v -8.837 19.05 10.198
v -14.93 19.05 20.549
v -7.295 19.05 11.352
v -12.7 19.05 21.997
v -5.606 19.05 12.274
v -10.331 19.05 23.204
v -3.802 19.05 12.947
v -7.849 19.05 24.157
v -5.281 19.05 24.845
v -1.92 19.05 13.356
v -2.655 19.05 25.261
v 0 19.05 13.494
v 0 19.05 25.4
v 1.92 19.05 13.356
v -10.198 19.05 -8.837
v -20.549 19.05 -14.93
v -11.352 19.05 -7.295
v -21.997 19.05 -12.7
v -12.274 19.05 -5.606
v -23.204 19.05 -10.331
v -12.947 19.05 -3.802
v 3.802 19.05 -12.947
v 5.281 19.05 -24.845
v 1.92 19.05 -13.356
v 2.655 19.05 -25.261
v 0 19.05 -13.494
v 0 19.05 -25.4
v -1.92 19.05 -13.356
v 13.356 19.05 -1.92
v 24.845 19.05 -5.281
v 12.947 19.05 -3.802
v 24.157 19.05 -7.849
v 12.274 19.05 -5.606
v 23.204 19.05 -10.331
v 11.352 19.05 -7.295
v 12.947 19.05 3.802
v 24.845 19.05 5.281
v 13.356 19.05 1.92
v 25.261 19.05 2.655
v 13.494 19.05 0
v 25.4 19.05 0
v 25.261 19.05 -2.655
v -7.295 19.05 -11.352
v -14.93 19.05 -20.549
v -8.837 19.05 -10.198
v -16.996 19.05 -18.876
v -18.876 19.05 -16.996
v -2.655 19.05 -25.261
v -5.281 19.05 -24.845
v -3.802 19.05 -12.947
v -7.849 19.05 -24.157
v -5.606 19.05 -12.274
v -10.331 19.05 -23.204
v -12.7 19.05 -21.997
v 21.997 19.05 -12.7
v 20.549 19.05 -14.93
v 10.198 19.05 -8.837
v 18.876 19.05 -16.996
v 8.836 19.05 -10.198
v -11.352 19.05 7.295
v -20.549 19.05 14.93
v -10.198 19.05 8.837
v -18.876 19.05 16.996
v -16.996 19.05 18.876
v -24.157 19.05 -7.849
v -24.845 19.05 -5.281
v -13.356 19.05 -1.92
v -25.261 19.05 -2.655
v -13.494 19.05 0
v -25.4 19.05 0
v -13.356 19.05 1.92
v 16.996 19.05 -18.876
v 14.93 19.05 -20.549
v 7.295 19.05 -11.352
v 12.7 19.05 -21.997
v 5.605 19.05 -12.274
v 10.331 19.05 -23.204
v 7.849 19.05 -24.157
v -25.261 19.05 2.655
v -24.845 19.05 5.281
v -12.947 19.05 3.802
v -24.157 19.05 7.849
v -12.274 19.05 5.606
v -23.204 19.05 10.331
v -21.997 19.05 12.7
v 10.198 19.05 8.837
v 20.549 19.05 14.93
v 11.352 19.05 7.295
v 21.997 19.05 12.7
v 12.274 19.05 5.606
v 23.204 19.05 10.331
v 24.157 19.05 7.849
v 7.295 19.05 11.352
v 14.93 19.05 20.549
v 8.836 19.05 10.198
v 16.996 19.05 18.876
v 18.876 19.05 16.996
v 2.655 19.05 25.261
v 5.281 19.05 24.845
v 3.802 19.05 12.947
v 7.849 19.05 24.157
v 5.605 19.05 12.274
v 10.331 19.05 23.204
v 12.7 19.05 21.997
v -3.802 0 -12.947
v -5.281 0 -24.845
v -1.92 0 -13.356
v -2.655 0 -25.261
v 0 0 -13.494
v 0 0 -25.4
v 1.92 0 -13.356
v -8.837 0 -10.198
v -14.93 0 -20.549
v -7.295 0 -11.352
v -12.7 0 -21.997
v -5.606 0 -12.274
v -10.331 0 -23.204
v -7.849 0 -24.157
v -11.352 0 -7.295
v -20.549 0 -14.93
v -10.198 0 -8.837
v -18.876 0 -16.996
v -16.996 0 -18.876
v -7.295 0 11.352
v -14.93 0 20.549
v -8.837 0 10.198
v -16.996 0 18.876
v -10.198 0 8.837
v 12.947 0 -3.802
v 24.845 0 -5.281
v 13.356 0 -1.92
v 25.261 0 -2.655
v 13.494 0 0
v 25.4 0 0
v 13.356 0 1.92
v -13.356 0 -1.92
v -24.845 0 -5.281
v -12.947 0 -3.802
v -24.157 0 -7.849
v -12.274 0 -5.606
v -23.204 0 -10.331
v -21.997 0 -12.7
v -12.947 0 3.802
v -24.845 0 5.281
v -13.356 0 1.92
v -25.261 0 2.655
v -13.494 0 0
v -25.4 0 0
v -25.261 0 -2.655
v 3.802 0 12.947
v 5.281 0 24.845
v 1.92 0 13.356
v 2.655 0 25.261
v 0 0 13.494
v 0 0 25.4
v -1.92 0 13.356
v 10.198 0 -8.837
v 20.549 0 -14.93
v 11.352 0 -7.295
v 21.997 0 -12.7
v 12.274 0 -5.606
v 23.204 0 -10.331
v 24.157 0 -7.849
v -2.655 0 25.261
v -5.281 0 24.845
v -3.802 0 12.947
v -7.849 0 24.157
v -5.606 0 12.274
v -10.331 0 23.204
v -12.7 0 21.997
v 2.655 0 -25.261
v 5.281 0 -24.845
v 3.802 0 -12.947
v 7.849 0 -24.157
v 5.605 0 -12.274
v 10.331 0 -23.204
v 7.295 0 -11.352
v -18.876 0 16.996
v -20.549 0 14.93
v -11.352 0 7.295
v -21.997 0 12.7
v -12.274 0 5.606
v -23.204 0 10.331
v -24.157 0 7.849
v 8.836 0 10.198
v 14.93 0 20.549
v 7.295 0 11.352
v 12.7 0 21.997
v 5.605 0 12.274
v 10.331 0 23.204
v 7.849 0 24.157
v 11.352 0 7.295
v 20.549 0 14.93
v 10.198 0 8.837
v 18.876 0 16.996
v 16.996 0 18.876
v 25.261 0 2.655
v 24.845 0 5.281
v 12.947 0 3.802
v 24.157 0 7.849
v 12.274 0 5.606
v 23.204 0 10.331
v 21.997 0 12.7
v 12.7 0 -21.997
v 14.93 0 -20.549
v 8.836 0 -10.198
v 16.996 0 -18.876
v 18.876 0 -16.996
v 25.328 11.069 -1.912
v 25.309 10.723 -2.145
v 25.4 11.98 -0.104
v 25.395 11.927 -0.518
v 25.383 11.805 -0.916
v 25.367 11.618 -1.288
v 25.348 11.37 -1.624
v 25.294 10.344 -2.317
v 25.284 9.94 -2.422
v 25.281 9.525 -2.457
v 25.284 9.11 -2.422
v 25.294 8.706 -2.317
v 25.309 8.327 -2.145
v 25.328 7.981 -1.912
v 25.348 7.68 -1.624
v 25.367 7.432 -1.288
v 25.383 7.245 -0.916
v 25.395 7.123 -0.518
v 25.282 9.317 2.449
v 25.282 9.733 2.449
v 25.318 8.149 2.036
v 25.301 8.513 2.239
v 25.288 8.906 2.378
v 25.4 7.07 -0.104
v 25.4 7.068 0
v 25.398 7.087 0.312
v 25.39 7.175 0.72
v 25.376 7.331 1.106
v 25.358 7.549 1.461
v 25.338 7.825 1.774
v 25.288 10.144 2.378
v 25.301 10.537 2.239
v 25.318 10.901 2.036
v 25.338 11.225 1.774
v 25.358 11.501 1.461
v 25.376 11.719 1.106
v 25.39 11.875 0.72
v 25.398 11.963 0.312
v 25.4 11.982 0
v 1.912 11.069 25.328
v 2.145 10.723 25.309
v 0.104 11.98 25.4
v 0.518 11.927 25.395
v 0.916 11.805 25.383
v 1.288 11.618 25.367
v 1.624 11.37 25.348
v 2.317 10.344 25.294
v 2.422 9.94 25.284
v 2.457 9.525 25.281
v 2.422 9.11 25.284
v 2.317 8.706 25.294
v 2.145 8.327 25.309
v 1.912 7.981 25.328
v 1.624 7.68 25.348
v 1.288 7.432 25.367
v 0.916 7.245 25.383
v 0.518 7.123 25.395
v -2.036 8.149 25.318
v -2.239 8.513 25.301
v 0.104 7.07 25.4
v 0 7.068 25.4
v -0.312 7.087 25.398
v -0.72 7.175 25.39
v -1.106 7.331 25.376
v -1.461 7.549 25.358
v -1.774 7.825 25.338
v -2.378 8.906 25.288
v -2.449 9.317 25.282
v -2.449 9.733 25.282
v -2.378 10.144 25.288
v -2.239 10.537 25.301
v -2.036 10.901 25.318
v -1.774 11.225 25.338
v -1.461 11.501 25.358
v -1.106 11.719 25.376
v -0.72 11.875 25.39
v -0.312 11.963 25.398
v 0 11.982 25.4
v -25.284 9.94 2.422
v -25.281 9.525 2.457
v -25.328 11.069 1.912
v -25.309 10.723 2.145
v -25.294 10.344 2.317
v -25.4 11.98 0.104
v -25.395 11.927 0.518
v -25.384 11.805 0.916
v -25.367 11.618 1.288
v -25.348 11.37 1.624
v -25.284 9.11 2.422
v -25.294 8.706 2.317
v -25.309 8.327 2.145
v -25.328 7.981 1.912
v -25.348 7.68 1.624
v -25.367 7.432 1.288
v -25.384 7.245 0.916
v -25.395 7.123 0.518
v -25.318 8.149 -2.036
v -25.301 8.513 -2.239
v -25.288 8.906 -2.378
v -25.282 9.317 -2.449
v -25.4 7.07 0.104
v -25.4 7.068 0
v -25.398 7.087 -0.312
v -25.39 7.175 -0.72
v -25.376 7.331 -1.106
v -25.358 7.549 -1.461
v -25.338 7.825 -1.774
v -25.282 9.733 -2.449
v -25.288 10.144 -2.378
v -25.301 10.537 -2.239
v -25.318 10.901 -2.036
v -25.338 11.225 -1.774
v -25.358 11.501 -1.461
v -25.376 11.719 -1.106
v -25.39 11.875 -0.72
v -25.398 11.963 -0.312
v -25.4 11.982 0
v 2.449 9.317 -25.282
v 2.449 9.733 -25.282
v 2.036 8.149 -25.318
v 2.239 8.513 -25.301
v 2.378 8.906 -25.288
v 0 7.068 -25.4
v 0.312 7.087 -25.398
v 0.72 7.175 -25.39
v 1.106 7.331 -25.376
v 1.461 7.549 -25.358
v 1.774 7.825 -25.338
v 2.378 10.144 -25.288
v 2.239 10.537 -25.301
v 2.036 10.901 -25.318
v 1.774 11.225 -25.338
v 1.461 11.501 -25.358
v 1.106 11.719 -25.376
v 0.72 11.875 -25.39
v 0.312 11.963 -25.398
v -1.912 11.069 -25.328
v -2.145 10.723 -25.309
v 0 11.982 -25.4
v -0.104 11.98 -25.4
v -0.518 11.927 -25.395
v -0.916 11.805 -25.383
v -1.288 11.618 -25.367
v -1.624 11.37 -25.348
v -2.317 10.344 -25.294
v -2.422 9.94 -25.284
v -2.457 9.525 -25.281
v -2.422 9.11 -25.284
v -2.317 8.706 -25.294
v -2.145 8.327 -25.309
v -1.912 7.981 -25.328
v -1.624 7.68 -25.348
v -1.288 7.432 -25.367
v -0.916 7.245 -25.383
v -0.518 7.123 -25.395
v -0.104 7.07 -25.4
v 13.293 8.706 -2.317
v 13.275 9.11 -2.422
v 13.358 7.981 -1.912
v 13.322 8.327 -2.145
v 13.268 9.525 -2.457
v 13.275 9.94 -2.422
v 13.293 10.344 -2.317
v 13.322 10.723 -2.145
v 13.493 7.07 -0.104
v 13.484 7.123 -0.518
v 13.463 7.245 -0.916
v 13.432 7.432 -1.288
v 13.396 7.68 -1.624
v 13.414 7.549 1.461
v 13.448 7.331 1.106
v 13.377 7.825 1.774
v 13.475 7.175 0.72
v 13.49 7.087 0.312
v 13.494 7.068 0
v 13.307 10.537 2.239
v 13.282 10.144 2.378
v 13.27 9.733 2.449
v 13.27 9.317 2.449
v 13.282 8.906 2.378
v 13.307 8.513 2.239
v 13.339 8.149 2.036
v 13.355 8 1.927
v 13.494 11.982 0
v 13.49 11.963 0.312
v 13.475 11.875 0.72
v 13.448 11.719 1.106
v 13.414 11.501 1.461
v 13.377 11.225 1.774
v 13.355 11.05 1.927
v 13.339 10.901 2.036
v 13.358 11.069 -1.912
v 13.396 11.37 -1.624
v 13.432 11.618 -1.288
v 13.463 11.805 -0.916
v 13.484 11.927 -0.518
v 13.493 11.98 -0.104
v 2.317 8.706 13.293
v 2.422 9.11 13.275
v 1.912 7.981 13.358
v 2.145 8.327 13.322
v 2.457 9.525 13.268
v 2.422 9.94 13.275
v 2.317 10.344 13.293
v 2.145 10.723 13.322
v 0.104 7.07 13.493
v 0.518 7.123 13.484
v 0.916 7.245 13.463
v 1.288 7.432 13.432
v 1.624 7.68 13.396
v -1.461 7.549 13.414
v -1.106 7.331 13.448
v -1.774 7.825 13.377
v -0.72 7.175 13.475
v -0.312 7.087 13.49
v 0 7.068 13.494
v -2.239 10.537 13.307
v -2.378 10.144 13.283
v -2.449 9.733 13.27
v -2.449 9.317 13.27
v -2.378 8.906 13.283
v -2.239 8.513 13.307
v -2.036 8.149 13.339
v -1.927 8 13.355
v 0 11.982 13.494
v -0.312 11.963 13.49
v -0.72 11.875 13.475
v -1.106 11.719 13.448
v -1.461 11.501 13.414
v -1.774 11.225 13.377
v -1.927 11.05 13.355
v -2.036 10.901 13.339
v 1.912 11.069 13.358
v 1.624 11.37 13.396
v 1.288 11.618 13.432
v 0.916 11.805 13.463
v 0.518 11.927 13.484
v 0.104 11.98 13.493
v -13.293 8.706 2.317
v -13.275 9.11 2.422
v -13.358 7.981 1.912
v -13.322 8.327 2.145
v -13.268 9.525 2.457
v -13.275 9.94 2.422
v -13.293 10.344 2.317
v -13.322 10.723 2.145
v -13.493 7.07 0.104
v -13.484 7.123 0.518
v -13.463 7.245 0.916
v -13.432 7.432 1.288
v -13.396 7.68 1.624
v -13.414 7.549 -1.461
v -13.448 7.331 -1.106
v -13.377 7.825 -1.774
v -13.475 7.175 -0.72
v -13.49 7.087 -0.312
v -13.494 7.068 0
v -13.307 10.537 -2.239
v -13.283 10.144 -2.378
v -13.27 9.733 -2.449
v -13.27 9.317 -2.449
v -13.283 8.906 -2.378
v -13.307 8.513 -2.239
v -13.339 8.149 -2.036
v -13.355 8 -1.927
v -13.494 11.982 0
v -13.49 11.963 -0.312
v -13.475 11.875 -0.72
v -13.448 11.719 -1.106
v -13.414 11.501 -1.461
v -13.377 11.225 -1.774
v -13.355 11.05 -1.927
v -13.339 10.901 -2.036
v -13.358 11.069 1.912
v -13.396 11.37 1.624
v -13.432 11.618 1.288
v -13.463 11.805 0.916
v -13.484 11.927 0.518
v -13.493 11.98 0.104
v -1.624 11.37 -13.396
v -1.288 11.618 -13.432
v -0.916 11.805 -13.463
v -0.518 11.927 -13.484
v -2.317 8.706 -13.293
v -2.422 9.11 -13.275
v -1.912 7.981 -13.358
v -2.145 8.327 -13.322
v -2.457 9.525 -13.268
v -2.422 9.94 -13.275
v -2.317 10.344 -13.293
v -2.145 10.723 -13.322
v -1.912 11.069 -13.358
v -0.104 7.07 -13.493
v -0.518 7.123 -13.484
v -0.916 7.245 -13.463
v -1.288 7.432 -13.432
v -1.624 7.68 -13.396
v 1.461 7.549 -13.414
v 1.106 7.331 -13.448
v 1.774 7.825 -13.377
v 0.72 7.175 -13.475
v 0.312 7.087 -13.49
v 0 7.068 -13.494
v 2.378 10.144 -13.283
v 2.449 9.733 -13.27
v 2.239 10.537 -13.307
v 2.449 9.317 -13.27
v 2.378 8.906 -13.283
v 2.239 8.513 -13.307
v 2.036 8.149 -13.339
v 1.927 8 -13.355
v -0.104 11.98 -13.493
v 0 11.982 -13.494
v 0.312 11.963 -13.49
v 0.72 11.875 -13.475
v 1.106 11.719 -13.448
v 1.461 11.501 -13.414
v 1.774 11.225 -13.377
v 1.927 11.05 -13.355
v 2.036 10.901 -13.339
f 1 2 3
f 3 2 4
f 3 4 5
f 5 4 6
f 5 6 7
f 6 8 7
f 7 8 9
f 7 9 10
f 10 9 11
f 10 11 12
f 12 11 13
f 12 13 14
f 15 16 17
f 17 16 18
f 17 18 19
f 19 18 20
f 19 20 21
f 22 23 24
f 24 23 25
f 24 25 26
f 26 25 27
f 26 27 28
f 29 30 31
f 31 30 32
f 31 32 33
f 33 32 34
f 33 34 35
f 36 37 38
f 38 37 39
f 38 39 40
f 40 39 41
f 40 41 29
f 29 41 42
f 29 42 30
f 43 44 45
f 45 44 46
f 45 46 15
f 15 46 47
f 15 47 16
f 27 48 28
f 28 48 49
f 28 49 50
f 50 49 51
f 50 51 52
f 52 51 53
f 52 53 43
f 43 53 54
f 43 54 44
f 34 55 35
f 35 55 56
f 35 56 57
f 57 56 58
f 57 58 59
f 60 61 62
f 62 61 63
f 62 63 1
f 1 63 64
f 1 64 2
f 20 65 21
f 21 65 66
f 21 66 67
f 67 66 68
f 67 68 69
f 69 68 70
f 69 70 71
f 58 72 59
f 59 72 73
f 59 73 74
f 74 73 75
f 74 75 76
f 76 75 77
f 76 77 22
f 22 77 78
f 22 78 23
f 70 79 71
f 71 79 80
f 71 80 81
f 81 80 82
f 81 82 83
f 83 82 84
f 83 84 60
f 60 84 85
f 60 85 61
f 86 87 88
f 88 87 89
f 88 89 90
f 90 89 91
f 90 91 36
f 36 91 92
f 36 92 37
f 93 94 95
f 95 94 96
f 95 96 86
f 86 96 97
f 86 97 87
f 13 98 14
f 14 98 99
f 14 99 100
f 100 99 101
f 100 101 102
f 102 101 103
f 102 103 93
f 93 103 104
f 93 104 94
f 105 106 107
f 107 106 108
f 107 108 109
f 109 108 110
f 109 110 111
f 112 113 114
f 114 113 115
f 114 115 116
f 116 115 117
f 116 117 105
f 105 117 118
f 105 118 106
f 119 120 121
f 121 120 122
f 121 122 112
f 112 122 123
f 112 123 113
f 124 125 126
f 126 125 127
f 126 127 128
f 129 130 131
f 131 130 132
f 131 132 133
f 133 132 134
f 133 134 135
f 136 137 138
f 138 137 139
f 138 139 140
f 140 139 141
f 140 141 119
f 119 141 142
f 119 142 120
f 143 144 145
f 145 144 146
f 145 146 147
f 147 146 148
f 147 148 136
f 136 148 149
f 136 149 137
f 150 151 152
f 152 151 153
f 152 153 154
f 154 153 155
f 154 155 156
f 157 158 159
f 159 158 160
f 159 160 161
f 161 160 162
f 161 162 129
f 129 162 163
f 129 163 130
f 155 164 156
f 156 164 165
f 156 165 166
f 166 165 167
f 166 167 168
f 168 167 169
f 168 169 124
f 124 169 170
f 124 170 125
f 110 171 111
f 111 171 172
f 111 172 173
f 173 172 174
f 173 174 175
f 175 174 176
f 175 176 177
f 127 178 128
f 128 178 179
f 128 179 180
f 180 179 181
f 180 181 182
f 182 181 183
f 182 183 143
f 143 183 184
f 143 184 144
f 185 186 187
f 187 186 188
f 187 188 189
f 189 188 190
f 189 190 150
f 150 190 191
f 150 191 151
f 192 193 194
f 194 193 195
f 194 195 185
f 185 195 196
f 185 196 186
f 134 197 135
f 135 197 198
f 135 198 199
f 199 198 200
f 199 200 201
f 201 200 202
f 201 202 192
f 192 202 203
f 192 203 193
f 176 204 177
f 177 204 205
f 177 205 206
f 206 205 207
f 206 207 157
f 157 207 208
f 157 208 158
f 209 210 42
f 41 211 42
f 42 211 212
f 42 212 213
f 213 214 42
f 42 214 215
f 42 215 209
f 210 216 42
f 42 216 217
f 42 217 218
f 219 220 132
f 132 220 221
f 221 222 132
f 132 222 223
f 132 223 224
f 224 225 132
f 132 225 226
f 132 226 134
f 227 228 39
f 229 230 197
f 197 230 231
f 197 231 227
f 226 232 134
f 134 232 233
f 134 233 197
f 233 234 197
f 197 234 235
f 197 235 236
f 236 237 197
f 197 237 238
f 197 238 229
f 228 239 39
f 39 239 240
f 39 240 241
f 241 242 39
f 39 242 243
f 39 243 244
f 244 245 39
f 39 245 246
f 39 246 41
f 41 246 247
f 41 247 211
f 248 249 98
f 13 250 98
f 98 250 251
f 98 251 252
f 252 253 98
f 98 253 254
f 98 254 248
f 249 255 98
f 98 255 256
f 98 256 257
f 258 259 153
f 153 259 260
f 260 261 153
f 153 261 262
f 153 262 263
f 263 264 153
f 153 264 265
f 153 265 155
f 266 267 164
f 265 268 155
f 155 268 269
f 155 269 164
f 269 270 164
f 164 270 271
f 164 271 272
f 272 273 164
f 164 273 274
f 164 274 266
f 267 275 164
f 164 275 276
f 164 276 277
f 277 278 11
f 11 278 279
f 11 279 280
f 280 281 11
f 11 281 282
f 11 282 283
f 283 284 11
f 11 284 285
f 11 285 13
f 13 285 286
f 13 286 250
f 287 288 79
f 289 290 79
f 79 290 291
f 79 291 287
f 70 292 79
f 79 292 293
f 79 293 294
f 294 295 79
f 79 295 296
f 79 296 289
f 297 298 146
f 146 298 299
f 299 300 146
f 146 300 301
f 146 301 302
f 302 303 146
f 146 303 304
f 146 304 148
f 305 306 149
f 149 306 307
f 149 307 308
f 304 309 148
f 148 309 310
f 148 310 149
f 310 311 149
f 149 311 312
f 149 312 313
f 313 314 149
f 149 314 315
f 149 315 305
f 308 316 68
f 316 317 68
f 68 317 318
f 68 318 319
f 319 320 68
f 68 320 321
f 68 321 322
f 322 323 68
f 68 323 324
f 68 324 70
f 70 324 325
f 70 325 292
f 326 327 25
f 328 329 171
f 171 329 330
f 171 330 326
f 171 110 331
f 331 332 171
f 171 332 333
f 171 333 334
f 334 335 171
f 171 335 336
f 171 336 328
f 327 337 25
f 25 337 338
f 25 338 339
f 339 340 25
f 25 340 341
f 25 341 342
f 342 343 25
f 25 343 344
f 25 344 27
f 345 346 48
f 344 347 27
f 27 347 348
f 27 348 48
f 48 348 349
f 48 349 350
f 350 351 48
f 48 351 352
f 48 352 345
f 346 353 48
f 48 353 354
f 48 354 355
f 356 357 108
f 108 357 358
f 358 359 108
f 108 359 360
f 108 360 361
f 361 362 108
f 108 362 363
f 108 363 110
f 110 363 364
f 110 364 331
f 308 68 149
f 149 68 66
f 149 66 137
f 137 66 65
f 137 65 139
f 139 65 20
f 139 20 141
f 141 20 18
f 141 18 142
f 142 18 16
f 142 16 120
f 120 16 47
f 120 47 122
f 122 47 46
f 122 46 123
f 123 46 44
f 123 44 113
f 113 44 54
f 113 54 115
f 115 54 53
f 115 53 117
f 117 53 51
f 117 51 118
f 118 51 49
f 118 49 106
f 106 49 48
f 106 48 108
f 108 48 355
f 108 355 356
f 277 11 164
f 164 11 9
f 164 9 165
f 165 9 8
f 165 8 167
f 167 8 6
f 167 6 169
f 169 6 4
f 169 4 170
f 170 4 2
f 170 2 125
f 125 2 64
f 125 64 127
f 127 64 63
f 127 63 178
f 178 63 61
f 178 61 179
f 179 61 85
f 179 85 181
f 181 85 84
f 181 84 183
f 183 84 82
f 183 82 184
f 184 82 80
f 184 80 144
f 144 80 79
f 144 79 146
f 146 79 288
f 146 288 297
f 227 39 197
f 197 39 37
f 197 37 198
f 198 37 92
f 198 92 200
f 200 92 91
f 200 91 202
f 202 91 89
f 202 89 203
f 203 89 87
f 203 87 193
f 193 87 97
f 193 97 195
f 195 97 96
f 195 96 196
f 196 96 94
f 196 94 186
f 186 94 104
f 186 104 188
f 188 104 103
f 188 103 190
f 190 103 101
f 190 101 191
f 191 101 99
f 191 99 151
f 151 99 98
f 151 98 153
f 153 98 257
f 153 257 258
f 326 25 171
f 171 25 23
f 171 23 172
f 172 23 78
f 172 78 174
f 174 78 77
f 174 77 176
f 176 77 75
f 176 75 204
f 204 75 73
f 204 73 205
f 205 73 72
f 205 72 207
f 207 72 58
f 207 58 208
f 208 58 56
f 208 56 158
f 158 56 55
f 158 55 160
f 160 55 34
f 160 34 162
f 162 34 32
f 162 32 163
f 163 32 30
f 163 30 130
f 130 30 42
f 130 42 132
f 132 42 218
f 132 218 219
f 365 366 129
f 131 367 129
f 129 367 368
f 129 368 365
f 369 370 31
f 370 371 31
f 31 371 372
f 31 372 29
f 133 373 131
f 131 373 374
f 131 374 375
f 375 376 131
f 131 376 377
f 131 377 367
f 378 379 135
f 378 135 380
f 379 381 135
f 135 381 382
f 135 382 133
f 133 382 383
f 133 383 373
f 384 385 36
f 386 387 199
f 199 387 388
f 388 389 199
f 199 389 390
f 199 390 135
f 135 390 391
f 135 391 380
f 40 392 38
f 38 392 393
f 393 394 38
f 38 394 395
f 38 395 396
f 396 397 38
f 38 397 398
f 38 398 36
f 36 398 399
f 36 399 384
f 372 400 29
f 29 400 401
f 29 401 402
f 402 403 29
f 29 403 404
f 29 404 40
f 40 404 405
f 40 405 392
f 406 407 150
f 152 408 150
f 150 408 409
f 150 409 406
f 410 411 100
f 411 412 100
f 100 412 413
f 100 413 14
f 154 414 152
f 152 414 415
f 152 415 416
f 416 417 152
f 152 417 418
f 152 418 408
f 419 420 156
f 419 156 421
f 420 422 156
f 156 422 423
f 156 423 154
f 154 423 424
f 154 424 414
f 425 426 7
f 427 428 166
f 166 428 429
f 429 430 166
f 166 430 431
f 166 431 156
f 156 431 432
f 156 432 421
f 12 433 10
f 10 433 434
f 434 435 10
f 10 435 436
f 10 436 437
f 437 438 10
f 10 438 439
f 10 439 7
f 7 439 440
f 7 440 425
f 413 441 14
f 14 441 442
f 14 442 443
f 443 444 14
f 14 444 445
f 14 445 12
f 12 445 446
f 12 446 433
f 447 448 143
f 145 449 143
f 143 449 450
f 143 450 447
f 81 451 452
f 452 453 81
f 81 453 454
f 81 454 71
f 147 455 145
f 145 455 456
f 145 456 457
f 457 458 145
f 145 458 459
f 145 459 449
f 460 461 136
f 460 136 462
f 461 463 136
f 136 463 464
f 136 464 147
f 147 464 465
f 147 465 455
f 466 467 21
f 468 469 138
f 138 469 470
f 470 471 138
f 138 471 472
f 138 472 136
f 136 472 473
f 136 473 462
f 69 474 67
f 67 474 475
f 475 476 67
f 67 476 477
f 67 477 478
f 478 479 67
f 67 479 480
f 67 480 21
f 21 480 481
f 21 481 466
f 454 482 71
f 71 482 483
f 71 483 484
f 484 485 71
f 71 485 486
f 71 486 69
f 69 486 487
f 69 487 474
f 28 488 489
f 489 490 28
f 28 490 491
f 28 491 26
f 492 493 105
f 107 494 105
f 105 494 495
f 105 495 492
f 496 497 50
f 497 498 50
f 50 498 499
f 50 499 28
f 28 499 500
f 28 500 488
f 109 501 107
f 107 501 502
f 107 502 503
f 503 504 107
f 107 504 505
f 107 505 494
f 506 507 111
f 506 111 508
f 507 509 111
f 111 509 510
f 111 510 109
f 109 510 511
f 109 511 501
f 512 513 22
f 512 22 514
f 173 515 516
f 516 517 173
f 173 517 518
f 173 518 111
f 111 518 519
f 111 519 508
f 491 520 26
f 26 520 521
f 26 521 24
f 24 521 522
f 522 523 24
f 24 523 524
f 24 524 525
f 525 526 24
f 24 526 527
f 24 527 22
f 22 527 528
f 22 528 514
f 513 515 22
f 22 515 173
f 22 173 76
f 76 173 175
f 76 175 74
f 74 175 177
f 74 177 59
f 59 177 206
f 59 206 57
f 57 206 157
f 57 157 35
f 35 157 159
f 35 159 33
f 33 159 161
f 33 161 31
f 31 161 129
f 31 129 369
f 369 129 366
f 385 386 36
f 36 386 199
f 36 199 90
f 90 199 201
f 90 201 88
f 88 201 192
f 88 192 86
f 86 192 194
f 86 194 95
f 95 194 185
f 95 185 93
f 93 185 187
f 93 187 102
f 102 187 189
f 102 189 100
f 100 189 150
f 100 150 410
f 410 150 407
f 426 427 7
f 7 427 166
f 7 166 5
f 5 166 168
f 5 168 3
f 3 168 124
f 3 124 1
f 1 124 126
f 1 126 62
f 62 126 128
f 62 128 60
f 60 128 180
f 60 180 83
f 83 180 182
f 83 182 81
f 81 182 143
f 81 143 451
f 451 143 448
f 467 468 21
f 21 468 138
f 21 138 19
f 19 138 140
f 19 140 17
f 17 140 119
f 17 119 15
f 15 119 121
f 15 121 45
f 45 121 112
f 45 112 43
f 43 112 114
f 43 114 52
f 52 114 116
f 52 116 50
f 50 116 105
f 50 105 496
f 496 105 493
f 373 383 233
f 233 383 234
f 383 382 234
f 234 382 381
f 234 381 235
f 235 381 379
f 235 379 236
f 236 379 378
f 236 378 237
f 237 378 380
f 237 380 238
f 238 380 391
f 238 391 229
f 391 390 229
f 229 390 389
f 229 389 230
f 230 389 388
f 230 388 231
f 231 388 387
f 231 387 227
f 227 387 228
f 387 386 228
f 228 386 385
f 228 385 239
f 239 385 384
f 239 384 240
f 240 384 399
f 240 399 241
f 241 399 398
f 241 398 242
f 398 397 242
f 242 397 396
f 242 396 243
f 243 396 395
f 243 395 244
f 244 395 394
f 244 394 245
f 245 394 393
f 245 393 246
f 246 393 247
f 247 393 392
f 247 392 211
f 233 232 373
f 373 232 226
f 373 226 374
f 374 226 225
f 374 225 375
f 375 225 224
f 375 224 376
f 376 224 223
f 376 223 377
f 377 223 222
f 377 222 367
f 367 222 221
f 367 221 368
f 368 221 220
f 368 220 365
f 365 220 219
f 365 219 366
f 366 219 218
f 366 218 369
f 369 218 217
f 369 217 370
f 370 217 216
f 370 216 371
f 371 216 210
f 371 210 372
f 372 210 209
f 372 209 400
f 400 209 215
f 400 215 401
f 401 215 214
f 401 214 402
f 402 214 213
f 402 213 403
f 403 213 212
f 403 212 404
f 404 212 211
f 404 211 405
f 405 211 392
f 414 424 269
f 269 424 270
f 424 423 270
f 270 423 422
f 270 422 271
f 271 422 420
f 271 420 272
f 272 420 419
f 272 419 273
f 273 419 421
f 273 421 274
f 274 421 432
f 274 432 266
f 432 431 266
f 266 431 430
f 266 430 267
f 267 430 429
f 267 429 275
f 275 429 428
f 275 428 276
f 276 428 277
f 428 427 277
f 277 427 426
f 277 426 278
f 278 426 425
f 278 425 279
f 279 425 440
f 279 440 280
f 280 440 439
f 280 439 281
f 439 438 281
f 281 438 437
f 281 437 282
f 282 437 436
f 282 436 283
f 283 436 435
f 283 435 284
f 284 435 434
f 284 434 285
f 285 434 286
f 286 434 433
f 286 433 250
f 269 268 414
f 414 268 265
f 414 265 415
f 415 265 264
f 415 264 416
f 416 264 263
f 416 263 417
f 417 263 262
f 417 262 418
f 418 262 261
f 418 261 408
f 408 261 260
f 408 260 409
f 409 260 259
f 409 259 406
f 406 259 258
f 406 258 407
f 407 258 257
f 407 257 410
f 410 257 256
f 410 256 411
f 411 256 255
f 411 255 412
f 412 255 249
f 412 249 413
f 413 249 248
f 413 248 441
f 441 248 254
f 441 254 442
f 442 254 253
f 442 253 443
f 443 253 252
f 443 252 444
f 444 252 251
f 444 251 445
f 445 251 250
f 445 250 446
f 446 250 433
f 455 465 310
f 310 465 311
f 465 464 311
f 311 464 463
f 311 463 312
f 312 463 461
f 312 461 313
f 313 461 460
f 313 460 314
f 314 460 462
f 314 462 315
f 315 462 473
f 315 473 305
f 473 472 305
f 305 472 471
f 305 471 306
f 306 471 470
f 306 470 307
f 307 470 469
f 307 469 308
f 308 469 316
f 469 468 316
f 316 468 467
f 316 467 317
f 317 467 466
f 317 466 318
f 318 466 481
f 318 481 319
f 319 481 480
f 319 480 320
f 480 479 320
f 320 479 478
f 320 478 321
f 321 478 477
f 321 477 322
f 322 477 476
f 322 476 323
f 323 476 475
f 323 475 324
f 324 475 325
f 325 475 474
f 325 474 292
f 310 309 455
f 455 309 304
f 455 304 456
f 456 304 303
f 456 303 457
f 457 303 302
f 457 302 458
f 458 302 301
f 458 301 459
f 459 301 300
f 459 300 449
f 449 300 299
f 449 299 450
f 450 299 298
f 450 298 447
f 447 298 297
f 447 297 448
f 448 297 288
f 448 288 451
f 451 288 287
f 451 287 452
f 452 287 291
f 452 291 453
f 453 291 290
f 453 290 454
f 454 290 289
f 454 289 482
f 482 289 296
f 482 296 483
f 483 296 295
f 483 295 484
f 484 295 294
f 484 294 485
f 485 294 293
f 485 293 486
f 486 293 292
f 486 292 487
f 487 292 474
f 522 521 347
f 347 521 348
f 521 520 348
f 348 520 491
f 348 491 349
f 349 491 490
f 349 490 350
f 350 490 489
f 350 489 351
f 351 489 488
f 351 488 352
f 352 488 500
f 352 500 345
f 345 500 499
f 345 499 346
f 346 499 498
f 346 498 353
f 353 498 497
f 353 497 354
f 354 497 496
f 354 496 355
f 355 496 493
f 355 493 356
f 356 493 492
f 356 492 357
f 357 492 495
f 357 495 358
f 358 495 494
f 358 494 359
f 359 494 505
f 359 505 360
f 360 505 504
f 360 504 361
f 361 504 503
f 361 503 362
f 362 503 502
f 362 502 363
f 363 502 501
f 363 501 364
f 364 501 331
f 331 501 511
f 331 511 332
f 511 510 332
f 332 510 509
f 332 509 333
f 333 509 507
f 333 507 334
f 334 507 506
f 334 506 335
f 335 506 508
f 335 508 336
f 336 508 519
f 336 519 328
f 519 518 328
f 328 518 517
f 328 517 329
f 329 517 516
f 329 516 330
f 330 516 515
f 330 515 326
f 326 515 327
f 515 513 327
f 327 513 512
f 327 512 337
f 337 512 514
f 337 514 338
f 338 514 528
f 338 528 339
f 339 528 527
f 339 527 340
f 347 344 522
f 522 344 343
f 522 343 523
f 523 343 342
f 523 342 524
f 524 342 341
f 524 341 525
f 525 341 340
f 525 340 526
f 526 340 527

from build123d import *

# Parameters (mm, degrees)
SKETCH1_R                         = 25.4
SKETCH1_R_2                       = 13.49375
BOSS_EXTRUDE1_DEPTH               = 19.05
F_10_0_1935_DIAMETER_HOLE1_REACH  = 61.906
F_10_0_1935_DIAMETER_HOLE1_BORE_R = 2.45745
CIRPATTERN1_COUNT                 = 4


with BuildPart() as part:
    # Sketch1 → Boss-Extrude1 (new body)
    with BuildSketch(Plane(origin=(0, 0, 0), x_dir=(1, 0, 0), z_dir=(0, 1, 0))):
        with Locations(Location((0, 0, 0), (0, 0, 90))):
            Circle(SKETCH1_R)
        with Locations(Location((0, 0, 0), (0, 0, 90))):
            Circle(SKETCH1_R_2, mode=Mode.SUBTRACT)
    extrude(amount=BOSS_EXTRUDE1_DEPTH)

    # #10 (0.1935) Diameter Hole1 bore → #10 (0.1935) Diameter Hole1 (cut, up to next)
    with BuildSketch(Plane(origin=(25.4, 0, 0), x_dir=(0, 0, -1), z_dir=(1, 0, 0)), mode=Mode.PRIVATE) as f_10_0_1935_diameter_hole1_sk1:
        with Locations((0, 9.525)):
            Circle(F_10_0_1935_DIAMETER_HOLE1_BORE_R)
    f_10_0_1935_diameter_hole1_tool1 = extrude(f_10_0_1935_diameter_hole1_sk1.sketch, amount=-F_10_0_1935_DIAMETER_HOLE1_REACH, mode=Mode.PRIVATE) & part.part
    f_10_0_1935_diameter_hole1 = f_10_0_1935_diameter_hole1_tool1.solids().sort_by_distance((25.4, 9.525, 0))[0]
    add(f_10_0_1935_diameter_hole1, mode=Mode.SUBTRACT)

    # CirPattern1: #10 (0.1935) Diameter Hole1 ×4 about axis
    cirpattern1_axis = Axis((0, 19.05, 0), (0, -1, 0))
    for i in range(1, CIRPATTERN1_COUNT):
        add(f_10_0_1935_diameter_hole1.rotate(cirpattern1_axis, i * 360 / CIRPATTERN1_COUNT), mode=Mode.SUBTRACT)


solid = part.part
